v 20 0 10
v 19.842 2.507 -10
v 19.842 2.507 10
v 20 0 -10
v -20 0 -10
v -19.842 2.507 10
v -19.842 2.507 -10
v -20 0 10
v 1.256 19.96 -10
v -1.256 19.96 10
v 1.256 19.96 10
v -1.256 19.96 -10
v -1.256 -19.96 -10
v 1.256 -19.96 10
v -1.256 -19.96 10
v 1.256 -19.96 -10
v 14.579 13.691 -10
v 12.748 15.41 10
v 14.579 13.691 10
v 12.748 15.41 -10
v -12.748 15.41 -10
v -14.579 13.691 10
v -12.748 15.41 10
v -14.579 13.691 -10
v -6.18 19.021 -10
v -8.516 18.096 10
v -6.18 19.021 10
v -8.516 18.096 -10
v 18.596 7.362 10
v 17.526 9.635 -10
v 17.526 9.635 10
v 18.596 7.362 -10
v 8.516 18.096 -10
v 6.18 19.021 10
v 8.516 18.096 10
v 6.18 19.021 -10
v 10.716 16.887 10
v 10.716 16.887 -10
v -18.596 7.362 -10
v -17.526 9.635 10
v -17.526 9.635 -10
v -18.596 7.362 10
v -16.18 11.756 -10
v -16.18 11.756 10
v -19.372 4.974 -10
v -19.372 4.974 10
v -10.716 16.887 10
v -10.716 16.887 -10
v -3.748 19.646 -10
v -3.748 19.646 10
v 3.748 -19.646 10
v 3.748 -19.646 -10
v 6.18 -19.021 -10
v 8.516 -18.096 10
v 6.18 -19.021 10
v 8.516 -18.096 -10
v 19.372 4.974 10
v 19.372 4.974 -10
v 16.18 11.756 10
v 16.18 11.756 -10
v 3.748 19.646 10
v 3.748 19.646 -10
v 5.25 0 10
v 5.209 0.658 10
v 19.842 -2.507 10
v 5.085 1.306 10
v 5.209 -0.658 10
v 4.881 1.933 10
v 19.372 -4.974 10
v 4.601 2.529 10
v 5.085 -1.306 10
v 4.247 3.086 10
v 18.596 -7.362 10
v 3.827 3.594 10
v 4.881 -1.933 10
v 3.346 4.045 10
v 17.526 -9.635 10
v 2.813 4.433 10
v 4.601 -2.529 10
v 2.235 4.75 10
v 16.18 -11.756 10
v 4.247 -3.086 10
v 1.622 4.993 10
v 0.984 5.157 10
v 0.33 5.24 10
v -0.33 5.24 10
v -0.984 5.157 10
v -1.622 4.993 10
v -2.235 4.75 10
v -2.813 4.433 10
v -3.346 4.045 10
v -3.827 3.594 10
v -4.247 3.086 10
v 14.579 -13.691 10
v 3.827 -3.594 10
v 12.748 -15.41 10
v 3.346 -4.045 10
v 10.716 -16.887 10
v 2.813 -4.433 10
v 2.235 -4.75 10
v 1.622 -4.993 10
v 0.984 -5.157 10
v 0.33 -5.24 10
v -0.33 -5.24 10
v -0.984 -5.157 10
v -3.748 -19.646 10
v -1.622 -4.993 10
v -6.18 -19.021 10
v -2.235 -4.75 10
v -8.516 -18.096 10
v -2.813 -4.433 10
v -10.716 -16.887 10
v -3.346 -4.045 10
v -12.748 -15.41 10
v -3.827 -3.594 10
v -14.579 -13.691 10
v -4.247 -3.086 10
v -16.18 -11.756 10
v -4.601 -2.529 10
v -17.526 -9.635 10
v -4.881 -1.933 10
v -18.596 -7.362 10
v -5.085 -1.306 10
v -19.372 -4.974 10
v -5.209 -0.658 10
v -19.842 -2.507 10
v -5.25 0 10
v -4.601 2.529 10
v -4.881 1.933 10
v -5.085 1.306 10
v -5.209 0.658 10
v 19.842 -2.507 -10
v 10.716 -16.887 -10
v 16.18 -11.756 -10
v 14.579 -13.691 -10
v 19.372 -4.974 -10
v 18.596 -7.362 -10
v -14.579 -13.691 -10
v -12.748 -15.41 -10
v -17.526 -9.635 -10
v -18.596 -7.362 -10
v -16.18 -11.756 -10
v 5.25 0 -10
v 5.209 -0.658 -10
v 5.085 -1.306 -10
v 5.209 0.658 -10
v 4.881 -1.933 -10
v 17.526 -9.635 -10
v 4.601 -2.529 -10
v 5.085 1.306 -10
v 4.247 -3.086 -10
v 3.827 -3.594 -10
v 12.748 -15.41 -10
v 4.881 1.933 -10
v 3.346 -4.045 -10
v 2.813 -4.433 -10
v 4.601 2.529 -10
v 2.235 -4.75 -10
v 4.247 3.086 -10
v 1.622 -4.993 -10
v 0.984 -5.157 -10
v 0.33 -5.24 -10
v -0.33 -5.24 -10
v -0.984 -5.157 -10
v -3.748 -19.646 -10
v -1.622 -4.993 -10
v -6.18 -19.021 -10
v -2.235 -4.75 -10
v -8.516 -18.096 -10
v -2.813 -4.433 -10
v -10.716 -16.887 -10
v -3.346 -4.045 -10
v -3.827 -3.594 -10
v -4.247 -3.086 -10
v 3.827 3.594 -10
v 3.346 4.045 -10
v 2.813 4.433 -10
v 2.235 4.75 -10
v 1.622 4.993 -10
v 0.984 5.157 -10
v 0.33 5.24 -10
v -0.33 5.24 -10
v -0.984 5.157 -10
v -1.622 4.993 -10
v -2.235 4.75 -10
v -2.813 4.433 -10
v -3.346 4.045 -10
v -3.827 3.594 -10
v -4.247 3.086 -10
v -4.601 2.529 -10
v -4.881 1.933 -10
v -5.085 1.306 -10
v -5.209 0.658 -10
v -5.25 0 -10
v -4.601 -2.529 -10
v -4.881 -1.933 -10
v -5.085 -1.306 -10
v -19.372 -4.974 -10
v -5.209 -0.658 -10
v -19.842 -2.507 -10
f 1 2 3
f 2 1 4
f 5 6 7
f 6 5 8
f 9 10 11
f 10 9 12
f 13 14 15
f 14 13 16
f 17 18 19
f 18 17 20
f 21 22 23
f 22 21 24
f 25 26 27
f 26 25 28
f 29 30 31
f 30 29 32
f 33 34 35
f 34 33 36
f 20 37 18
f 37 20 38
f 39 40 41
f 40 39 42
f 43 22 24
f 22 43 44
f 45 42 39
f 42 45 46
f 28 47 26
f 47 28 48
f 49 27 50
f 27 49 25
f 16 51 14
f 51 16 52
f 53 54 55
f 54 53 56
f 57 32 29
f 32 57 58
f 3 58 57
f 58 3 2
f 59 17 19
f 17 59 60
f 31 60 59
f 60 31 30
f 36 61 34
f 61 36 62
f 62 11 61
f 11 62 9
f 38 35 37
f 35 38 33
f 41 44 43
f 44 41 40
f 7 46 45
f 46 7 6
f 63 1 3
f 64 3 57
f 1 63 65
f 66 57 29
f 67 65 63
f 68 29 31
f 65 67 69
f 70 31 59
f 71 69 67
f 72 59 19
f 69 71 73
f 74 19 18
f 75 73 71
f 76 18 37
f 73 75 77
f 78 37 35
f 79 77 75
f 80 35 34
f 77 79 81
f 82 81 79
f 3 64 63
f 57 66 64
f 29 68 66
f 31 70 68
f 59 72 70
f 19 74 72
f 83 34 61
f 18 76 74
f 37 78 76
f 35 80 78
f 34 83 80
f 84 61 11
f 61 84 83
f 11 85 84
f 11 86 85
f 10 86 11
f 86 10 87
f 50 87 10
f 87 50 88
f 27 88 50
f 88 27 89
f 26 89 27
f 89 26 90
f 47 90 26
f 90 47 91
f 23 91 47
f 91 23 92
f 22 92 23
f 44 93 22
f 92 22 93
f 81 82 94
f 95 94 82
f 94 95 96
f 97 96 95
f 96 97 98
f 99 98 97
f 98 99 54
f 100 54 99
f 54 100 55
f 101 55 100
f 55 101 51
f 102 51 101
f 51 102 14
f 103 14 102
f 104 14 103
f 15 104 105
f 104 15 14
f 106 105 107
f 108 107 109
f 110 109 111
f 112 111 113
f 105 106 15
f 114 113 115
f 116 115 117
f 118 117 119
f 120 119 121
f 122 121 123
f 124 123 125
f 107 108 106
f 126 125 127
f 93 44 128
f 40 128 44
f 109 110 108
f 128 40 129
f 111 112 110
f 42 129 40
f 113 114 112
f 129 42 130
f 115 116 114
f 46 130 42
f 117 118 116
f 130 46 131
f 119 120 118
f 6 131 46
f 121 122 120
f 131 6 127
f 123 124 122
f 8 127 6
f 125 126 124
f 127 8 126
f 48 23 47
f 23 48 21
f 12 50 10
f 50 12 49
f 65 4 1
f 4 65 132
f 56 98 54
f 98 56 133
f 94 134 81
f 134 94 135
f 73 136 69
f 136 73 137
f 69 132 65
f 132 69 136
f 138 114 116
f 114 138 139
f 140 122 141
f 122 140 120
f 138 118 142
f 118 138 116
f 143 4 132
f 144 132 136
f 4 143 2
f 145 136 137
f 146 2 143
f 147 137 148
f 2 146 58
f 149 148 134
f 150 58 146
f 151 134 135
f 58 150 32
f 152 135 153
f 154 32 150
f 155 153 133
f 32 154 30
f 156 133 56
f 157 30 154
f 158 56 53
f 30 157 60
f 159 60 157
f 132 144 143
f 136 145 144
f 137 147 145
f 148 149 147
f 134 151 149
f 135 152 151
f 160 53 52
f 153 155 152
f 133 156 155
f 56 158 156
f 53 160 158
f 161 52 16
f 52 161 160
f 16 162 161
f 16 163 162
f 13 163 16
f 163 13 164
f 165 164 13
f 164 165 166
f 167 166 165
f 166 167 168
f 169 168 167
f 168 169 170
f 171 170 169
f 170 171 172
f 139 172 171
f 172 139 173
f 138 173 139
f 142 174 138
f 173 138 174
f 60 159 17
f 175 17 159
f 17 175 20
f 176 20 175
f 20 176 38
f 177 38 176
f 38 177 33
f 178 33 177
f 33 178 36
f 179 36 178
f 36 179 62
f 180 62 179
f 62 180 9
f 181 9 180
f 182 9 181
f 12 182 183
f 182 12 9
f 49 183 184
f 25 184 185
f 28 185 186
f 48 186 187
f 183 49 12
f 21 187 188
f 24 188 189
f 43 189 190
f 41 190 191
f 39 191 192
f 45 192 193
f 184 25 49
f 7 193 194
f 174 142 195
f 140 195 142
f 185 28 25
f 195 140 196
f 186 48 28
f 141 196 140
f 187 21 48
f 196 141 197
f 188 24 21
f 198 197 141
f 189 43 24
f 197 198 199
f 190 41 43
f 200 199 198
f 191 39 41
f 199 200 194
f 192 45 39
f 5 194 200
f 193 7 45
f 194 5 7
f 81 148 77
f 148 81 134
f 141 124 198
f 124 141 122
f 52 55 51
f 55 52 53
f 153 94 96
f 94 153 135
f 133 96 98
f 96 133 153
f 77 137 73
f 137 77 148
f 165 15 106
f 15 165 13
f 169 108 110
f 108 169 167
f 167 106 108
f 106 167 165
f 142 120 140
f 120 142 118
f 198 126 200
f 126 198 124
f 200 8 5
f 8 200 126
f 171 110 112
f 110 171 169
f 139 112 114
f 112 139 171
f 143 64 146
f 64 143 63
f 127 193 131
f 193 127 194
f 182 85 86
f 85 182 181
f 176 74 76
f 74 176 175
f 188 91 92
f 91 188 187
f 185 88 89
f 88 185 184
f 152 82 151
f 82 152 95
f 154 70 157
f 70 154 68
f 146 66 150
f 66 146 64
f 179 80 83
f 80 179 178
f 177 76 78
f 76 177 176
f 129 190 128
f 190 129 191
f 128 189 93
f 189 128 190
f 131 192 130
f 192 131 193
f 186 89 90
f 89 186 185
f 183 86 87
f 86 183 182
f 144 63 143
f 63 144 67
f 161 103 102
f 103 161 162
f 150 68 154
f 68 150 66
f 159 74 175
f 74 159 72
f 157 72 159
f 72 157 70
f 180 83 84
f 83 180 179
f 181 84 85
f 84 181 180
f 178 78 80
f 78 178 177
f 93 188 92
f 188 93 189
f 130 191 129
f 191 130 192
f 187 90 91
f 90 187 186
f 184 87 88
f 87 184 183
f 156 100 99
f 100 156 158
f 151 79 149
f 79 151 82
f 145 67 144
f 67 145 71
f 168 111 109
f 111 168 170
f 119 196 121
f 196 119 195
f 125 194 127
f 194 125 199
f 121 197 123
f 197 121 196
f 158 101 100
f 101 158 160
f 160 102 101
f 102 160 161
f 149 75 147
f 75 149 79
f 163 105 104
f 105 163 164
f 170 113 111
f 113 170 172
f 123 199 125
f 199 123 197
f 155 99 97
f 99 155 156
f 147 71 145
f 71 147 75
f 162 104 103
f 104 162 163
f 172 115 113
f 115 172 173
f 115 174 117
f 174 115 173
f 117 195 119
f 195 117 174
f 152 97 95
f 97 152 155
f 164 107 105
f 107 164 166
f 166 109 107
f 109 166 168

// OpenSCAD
$fn = 50;


difference() {
	union() {
		translate(v = [0, 0, -10.0000000000]) {
			cylinder(h = 20, r = 20.0000000000);
		}
	}
	union() {
		translate(v = [0, 0, -100.0000000000]) {
			cylinder(h = 200, r = 5.2500000000);
		}
	}
}
